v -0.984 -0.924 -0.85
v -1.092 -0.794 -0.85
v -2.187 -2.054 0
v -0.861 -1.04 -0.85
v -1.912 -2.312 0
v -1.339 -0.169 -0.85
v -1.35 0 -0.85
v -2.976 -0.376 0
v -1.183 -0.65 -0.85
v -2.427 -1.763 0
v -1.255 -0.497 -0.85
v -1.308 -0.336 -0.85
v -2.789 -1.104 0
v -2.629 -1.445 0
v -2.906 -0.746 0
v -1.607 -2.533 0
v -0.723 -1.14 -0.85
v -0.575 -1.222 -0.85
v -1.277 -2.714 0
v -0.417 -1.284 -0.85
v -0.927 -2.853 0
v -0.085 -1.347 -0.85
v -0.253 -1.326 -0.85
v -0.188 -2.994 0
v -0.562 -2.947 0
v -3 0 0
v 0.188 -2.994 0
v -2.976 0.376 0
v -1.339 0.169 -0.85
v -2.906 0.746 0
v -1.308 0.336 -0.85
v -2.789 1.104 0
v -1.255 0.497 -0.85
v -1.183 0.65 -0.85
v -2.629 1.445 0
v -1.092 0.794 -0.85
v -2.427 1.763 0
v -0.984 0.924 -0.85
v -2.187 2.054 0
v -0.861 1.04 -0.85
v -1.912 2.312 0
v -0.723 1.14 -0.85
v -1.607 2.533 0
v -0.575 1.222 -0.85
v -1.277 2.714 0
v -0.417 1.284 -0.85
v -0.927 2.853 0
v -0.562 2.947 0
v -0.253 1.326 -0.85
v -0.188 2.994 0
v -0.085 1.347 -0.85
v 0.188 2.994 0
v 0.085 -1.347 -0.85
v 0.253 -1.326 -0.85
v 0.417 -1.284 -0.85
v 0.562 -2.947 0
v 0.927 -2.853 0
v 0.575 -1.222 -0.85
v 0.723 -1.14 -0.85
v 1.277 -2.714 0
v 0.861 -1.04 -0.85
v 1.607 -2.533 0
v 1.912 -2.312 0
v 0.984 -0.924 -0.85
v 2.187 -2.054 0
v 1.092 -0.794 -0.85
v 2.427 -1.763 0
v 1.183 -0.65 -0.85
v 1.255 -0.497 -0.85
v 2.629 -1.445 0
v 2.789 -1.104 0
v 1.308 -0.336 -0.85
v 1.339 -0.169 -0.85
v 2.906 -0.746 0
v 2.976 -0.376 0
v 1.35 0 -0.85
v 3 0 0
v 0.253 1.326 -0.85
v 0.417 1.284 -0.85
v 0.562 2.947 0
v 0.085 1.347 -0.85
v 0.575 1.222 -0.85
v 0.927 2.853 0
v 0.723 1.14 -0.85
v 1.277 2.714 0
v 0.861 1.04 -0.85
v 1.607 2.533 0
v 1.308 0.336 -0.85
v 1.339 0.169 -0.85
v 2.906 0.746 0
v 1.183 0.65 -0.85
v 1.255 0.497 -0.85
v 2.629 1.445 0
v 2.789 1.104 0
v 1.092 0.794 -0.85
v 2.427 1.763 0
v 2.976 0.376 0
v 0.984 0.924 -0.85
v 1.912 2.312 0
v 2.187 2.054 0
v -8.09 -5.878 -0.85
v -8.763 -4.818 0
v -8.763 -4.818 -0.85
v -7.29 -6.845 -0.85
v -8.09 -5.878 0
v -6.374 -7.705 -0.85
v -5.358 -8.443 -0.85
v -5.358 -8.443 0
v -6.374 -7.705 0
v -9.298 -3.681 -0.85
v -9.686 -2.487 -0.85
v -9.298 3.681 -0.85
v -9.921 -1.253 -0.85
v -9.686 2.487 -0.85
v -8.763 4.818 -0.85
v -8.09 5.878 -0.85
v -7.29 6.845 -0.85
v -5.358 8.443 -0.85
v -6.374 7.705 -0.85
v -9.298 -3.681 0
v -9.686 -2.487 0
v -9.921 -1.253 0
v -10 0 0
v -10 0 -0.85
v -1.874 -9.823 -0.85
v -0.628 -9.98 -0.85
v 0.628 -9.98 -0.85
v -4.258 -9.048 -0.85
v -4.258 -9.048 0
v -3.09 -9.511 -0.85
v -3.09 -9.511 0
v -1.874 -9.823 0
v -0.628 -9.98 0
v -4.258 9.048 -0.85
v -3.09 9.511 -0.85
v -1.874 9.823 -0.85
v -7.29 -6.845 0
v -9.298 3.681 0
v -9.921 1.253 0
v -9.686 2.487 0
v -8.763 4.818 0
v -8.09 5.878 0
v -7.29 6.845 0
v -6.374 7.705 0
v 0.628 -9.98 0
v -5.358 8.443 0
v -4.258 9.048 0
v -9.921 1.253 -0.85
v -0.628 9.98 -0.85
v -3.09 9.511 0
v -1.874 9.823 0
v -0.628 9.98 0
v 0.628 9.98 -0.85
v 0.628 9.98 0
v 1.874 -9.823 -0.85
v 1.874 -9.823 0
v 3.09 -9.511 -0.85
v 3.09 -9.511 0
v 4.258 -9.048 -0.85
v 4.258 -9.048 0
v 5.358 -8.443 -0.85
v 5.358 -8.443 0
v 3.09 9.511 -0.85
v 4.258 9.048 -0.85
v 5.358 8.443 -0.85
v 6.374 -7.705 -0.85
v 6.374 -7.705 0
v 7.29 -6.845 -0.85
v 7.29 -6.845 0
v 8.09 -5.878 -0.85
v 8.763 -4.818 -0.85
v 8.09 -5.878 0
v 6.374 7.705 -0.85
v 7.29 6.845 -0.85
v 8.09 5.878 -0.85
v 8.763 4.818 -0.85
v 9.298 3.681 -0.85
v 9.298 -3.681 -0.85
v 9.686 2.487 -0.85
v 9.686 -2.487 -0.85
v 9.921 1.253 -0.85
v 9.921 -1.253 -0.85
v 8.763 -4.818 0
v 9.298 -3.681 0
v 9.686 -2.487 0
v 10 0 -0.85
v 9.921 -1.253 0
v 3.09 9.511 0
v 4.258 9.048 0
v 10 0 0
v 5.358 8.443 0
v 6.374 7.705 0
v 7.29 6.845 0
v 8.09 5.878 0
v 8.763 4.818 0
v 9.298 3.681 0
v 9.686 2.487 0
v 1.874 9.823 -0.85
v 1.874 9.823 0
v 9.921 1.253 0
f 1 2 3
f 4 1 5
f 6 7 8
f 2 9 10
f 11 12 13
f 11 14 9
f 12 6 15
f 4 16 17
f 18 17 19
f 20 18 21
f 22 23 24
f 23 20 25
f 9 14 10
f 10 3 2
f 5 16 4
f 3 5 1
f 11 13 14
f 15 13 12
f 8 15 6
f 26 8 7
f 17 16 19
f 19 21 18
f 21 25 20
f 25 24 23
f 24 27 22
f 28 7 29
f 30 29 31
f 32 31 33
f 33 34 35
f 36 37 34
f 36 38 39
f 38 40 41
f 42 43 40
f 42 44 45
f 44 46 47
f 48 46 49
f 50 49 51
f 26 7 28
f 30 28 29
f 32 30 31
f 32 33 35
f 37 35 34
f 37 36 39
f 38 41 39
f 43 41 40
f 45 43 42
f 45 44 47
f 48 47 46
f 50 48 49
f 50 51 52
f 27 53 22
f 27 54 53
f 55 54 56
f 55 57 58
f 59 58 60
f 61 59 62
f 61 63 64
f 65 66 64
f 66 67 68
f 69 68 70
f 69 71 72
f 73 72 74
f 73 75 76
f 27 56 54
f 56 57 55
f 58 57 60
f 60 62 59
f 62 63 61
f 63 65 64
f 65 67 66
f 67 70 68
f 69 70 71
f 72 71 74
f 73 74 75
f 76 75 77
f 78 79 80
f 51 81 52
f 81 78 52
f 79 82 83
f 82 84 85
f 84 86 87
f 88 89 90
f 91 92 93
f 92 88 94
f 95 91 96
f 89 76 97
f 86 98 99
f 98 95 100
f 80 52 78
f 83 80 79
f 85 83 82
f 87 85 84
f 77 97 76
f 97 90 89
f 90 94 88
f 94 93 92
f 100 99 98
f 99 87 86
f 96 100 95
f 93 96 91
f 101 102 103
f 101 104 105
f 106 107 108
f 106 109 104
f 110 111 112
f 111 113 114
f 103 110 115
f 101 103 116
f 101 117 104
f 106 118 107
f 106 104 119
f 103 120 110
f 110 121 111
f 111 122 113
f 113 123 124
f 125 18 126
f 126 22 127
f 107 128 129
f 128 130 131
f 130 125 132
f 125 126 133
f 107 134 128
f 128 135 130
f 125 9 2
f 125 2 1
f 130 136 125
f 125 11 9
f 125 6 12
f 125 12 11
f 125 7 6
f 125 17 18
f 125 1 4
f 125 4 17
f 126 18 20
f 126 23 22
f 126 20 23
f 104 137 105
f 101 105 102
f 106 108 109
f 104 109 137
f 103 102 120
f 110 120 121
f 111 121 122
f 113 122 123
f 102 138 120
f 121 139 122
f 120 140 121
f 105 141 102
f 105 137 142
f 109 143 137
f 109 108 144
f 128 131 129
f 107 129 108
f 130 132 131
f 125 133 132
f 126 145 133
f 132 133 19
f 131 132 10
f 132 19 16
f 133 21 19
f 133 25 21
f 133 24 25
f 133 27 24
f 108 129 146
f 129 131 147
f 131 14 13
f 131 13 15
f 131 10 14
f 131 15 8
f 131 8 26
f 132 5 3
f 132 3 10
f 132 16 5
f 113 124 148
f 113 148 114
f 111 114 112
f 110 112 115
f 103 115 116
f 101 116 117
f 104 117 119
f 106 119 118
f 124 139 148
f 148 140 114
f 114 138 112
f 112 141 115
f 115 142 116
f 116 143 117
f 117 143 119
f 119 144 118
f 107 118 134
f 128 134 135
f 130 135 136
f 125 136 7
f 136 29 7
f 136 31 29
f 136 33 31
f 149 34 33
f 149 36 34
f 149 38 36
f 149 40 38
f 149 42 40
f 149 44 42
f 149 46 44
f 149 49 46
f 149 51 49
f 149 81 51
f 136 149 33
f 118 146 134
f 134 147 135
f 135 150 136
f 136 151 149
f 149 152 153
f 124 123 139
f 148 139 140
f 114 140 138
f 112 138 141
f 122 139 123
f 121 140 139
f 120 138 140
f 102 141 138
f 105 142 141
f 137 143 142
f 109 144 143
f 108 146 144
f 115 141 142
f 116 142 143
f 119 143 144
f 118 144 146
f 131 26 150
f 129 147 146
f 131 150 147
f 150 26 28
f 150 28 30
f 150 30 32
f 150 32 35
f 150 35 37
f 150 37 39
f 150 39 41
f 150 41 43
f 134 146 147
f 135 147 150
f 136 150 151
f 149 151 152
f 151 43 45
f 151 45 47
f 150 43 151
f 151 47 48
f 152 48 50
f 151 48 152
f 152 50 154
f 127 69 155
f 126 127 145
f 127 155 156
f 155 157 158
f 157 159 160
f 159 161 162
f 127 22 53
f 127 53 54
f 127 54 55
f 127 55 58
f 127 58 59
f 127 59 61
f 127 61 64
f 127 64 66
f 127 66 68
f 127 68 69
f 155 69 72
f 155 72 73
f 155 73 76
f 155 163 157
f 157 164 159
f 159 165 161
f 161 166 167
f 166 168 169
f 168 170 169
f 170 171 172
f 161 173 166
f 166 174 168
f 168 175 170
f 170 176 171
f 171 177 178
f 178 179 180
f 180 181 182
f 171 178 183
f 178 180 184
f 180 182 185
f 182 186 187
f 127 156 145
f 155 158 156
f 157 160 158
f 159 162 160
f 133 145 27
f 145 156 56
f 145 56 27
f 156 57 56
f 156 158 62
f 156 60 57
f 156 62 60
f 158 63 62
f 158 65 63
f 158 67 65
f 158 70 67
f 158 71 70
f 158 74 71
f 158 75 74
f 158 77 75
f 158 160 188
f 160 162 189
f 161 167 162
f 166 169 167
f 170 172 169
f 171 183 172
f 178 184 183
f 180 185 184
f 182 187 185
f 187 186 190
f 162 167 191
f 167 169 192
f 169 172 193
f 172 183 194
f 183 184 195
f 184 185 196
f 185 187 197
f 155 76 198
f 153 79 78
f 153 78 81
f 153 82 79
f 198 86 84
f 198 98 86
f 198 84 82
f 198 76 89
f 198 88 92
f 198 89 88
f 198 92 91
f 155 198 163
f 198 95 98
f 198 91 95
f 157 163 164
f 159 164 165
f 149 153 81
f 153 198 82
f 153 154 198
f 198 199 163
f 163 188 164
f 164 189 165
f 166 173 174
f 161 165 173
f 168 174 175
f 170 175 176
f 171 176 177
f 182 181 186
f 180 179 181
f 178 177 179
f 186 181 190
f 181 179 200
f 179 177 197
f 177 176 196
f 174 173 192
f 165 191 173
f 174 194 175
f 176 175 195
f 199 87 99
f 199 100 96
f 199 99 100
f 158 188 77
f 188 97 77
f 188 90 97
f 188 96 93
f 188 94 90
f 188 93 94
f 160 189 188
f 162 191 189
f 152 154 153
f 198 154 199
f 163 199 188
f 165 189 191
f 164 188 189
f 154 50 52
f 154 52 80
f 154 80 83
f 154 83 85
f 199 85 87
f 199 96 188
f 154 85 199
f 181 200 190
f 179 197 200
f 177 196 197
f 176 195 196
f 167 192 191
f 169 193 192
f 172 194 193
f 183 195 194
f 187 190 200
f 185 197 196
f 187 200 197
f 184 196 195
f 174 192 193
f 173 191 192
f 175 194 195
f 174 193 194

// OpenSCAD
$fn = 50;

difference() {
	union() {
		translate(v = [0, 0, -0.85]) {
			cylinder(h = 0.85, r = 10.0);
		}
	}
	union() {
		translate(v = [0, 0, 0]) {
			rotate(a = [0, 0, 0]) {
				difference() {
					union() {
						translate(v = [0, 0, -3.85]) {
							cylinder(h = 3.85, r = 1.0);
						}
						translate(v = [0, 0, -0.85]) {
							cylinder(h = 0.85, r1 = 1.35, r2 = 3.0);
						}
						translate(v = [0, 0, -3.85]) {
							cylinder(h = 3.85, r = 1.35);
						}
						translate(v = [0, 0, -3.85]) {
							cylinder(h = 3.85, r = 1.0);
						}
					}
					union();
				}
			}
		}
	}
}
